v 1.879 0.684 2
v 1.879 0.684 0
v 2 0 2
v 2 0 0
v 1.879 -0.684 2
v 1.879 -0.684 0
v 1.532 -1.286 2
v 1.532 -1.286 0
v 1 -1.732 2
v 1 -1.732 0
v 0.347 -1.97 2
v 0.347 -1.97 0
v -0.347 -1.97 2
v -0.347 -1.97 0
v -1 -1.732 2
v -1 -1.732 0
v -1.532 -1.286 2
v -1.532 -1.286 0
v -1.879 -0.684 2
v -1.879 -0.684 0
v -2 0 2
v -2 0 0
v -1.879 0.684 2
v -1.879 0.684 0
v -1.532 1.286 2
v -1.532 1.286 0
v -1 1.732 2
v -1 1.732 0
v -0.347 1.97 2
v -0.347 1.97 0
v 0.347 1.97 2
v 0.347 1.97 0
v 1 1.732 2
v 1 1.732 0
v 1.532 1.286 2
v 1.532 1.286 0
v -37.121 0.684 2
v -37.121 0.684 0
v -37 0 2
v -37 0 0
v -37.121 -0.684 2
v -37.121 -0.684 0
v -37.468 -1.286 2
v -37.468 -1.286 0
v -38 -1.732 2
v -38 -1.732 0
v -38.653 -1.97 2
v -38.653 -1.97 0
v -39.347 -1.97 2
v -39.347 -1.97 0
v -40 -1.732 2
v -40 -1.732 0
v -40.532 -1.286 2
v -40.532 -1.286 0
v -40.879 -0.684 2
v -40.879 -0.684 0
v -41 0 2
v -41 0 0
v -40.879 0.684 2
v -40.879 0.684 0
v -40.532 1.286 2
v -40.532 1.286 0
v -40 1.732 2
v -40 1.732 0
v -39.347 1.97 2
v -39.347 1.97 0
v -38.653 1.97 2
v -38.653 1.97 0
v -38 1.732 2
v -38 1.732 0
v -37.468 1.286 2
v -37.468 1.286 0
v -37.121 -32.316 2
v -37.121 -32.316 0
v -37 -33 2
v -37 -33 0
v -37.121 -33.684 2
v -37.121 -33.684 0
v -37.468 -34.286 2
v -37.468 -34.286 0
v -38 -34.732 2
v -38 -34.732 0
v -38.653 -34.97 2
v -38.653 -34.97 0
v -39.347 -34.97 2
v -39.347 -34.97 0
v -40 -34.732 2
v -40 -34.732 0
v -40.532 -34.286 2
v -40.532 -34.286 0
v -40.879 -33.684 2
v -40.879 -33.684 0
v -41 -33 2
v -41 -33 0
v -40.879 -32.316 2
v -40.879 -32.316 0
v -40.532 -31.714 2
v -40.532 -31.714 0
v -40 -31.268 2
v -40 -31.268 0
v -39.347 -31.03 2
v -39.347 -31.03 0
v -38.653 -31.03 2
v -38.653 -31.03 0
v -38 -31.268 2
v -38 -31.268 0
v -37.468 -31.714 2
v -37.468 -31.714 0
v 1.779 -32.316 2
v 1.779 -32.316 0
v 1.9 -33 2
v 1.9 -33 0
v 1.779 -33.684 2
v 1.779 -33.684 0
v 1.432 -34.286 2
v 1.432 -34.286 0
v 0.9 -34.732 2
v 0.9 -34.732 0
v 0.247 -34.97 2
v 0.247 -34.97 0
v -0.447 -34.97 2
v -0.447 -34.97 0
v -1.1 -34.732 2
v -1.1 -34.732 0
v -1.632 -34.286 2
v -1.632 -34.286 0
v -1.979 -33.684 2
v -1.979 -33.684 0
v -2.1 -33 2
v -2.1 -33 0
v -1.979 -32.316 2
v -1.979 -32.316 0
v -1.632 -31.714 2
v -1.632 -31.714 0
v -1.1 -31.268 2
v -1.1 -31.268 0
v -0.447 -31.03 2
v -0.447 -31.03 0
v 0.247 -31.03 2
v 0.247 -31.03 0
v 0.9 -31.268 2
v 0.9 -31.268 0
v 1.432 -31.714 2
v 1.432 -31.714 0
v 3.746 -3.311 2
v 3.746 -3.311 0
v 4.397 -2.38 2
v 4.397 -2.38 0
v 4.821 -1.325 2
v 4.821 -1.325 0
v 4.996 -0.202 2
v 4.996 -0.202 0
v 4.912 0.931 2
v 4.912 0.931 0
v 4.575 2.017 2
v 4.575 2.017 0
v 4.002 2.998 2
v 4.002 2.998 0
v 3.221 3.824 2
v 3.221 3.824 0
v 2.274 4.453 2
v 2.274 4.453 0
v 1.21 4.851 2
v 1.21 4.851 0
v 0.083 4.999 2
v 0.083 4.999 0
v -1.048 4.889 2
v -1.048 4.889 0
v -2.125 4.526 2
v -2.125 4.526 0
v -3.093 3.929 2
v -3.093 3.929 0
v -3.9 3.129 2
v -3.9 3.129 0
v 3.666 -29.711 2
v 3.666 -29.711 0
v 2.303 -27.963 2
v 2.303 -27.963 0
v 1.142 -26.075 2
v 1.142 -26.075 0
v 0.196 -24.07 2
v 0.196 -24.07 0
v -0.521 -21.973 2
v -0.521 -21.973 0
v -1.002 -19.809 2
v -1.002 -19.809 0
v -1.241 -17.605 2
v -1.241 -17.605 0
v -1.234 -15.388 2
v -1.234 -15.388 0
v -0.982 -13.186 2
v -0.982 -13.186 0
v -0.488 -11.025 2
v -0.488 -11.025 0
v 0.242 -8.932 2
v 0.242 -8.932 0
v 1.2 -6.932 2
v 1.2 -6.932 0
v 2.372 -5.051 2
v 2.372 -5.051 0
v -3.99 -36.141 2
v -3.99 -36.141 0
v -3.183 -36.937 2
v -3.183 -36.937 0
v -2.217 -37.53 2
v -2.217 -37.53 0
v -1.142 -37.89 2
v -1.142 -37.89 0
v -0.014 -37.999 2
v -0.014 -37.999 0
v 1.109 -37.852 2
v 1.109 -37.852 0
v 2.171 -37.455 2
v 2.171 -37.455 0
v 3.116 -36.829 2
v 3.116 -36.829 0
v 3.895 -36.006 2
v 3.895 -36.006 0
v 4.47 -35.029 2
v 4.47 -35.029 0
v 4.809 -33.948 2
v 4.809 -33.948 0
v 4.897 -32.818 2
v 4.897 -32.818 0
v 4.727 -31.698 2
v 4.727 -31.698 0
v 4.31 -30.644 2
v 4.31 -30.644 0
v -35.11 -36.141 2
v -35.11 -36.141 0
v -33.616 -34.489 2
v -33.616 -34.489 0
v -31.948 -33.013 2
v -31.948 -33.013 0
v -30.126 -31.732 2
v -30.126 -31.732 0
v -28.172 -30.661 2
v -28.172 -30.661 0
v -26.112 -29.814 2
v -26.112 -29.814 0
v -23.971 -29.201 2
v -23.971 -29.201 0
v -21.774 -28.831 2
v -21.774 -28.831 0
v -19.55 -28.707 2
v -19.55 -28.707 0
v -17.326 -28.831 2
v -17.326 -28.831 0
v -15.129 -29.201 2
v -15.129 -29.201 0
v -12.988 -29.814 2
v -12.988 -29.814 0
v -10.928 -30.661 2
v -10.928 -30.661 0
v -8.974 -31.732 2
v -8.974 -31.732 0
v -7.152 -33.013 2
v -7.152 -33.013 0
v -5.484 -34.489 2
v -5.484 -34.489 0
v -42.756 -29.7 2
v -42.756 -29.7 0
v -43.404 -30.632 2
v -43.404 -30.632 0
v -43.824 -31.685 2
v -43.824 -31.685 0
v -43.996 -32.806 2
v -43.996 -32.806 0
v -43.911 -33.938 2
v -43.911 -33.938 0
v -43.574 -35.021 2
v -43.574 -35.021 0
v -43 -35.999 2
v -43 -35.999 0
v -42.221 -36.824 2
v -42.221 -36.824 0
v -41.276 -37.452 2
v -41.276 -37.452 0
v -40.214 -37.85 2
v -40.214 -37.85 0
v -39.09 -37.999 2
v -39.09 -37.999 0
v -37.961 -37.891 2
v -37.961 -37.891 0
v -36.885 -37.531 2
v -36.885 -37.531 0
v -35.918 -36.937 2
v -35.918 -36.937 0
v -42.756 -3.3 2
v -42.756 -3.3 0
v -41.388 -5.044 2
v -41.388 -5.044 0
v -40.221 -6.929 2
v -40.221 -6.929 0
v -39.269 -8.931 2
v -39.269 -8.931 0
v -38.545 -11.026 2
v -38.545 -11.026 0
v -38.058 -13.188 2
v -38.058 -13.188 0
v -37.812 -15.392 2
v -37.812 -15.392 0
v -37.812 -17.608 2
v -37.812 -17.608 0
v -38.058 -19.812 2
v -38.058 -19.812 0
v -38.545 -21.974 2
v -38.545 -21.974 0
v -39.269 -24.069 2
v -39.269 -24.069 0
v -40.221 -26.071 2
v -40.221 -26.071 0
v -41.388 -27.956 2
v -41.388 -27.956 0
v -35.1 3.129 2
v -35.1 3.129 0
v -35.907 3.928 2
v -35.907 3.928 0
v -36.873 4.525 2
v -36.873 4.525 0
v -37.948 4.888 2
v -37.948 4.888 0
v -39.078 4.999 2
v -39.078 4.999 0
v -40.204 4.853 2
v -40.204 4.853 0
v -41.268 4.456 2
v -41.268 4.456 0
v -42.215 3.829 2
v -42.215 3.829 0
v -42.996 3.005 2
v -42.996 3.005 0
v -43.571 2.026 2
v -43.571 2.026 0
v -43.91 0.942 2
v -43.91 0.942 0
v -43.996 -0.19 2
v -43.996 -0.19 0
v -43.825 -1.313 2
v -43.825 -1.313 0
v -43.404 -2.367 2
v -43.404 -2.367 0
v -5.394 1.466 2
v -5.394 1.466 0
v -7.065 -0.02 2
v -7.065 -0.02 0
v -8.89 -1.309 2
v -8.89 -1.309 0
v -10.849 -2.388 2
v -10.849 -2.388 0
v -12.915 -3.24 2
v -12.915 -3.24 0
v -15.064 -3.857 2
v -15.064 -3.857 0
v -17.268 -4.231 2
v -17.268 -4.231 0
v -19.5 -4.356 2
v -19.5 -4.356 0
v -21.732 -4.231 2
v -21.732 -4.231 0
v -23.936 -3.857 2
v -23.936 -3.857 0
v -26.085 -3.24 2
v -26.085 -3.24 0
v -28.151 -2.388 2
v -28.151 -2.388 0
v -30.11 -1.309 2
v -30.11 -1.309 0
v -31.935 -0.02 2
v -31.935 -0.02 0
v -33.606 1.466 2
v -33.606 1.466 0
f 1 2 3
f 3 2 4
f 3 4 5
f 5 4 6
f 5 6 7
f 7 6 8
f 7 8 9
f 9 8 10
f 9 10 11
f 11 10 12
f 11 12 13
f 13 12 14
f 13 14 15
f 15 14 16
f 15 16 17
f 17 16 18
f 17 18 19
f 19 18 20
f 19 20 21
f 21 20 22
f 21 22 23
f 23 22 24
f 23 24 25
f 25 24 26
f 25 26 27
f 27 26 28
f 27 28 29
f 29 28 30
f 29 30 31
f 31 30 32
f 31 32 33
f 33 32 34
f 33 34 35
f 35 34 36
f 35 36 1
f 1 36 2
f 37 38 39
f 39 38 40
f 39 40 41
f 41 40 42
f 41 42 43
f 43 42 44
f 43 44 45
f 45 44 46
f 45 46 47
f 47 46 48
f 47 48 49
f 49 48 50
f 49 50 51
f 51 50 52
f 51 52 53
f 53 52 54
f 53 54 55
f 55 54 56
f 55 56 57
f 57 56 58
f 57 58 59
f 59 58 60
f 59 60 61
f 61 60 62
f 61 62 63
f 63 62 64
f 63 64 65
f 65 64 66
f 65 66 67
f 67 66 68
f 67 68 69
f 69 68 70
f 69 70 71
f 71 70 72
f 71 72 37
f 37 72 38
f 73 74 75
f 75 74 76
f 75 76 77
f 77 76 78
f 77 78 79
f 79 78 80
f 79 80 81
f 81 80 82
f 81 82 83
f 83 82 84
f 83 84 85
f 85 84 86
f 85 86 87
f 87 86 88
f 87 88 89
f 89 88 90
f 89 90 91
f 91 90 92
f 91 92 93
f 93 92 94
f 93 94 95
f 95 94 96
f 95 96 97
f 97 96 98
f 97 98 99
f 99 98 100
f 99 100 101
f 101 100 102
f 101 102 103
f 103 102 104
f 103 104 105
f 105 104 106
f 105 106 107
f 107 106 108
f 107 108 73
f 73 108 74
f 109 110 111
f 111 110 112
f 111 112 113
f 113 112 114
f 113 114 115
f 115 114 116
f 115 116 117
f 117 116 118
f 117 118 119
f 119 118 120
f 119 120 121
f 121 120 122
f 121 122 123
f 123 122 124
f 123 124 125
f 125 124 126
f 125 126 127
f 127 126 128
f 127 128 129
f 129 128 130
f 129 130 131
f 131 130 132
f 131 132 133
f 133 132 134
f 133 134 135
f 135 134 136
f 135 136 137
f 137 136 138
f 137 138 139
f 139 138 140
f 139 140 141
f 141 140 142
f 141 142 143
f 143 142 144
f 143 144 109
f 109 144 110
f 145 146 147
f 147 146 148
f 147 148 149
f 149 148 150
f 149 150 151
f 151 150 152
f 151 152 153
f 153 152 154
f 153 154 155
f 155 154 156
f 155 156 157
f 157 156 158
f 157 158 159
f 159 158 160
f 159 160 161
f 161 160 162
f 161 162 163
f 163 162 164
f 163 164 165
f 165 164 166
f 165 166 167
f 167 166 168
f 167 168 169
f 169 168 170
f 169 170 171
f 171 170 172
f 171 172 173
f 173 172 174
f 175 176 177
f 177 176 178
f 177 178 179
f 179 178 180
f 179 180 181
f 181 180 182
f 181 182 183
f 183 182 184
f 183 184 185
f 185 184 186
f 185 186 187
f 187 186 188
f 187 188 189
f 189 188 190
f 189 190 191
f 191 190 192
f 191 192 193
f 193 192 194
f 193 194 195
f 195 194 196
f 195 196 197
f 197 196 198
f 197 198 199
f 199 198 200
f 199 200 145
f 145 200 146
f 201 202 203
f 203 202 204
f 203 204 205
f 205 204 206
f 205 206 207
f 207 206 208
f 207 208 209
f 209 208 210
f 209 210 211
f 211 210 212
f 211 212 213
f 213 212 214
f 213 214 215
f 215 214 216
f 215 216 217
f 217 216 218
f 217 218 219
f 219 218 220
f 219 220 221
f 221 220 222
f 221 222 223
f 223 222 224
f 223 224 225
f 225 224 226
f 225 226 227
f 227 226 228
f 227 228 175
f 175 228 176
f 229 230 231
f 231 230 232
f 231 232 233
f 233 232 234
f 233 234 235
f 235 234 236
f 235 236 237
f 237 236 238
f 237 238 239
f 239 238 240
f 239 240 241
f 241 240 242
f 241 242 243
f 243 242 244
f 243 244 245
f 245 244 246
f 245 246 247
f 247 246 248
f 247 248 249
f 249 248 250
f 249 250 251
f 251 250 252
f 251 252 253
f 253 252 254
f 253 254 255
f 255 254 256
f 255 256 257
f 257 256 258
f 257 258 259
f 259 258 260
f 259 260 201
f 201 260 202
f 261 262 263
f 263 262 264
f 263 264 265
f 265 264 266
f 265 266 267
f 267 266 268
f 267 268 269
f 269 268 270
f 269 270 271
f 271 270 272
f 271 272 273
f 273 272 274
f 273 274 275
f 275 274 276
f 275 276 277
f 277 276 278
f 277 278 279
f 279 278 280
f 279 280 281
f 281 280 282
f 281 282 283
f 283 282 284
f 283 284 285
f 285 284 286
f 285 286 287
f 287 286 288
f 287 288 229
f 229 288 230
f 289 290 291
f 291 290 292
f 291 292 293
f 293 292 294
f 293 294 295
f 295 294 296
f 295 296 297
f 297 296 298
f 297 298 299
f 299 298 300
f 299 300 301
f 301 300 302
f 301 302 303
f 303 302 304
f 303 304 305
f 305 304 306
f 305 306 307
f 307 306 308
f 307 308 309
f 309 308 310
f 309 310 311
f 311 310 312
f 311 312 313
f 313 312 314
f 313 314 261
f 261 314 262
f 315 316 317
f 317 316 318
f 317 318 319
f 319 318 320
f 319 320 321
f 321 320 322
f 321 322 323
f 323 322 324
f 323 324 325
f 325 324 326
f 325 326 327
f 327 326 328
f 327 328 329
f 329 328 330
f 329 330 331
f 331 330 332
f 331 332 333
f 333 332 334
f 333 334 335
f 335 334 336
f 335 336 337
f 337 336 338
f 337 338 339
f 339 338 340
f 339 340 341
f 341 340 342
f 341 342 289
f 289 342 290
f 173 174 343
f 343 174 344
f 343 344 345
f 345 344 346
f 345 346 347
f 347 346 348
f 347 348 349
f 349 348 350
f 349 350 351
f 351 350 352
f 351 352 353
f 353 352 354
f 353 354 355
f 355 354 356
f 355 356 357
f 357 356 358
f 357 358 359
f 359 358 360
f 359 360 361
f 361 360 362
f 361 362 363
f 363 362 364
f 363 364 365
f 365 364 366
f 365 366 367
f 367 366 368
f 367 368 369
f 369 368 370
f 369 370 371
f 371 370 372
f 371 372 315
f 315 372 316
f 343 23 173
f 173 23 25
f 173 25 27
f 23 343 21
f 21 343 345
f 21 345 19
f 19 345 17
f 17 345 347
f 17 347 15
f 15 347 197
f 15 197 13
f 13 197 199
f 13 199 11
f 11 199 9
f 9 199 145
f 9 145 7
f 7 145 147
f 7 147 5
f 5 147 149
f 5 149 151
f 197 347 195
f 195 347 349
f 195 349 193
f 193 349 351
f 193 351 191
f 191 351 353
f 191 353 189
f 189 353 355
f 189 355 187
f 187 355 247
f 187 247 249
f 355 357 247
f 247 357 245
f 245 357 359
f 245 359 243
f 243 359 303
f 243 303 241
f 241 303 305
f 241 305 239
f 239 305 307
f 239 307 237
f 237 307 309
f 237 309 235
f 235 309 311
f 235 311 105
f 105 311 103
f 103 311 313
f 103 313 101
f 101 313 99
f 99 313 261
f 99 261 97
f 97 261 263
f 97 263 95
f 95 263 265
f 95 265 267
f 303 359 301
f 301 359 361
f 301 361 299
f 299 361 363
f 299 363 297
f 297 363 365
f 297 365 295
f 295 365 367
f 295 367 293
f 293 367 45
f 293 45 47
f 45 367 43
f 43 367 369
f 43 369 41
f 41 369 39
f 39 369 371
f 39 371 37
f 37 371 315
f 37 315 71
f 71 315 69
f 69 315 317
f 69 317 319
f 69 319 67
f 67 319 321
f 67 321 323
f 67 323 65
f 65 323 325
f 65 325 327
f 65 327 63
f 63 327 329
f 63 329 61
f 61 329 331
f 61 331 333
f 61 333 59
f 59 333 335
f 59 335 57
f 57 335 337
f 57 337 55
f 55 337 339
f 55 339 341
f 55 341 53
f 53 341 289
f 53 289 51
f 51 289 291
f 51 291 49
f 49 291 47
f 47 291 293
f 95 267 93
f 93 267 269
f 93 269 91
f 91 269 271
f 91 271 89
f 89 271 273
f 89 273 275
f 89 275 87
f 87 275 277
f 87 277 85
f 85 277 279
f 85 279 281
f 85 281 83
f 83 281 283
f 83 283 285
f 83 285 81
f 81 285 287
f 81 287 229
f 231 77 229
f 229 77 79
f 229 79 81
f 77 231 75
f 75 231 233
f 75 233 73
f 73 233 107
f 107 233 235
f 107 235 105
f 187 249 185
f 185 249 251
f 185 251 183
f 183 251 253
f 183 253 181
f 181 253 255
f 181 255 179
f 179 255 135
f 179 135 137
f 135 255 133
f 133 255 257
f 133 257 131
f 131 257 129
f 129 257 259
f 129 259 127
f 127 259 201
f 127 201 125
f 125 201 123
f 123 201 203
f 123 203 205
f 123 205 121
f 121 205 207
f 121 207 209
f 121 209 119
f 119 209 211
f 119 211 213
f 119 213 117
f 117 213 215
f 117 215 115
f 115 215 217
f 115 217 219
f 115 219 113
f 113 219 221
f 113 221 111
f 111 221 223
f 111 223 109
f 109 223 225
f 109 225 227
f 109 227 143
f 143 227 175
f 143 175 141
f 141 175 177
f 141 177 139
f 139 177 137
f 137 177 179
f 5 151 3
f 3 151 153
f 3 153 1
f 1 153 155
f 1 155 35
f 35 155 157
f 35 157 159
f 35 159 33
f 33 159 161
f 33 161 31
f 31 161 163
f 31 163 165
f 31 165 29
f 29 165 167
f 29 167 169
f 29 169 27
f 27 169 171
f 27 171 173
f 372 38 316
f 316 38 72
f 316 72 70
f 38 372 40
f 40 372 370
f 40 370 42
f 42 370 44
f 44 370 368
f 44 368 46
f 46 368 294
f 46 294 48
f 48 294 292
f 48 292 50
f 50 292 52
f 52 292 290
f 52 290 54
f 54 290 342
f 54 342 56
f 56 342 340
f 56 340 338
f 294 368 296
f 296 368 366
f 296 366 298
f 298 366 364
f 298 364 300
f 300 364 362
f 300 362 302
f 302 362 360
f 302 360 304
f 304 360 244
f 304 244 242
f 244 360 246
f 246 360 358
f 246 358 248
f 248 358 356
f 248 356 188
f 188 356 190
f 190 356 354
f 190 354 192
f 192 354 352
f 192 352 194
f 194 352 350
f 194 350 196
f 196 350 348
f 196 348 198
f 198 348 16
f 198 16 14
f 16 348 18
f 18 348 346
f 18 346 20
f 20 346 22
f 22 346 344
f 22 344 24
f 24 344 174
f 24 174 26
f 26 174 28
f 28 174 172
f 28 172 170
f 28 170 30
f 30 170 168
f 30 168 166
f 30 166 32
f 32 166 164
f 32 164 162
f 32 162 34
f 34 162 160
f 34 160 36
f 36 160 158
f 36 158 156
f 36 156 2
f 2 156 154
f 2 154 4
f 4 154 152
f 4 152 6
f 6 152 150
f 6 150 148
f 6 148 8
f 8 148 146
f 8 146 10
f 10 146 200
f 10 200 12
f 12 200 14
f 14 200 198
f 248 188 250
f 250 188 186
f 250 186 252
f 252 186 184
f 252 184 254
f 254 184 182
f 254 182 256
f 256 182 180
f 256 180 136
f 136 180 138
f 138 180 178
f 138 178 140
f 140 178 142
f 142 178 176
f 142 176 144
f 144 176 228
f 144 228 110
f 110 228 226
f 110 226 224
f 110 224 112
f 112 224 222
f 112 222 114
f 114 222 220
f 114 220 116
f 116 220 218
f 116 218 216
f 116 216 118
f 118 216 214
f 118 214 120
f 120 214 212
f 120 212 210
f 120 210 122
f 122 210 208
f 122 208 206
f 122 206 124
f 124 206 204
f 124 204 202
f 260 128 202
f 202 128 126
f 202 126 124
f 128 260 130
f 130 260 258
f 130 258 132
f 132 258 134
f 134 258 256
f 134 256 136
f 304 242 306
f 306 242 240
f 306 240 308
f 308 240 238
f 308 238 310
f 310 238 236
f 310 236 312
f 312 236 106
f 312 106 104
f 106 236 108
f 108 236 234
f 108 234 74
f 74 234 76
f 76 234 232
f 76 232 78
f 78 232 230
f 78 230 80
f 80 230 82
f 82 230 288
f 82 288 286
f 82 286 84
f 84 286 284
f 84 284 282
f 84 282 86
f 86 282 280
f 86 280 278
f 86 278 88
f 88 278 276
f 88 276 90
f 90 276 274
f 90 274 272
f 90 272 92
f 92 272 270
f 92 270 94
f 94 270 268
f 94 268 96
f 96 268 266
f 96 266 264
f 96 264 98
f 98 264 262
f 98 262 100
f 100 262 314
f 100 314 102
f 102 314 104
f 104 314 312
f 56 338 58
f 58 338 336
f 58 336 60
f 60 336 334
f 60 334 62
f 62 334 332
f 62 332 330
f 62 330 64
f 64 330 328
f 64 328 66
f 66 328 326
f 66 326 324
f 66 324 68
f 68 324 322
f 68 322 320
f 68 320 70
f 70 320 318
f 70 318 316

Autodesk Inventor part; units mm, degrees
ref_plane "YZ Plane" through (0, 0, 0) normal (1, 0, 0) x (0, 1, 0)
ref_plane "XZ Plane" through (0, 0, 0) normal (0, 1, 0) x (-1, 0, 0)
ref_plane "XY Plane" through (0, 0, 0) normal (0, 0, 1) x (1, 0, 0)
sketch "Эскиз1" plane through (0, 0, 0) normal (0, 0, 1) x (1, 0, 0)
  circle A0 centre (0, 0) radius 2 projected
  circle A1 centre (-39, 0) radius 2 projected
  arc A2 (-35.1, 3.1289) -> (-42.7563, -3.3) centre (-39, 0) ccw
  arc A3 (-42.7563, -29.7) -> (-35.11, -36.1413) centre (-39, -33) ccw
  arc A4 (3.7463, -3.3114) -> (-3.9, 3.1289) centre (0, 0) ccw
  arc A5 (-3.99, -36.1413) -> (3.6663, -29.7114) centre (-0.1, -33) ccw
  arc A6 (-35.1, 3.1289) -> (-3.9, 3.1289) centre (-19.5, 15.6445) ccw
  arc A7 (3.7463, -3.3114) -> (3.6663, -29.7114) centre (18.7315, -16.5569) ccw
  arc A8 (-42.7563, -29.7) -> (-42.7563, -3.3) centre (-57.7816, -16.5) ccw
  circle A9 centre (-39, -33) radius 2
  circle A10 centre (-0.1, -33) radius 2
  arc A11 (-3.99, -36.1413) -> (-35.11, -36.1413) centre (-19.55, -48.7066) ccw
  point P0 (0, 0)
  dimension "d1" = 5
  dimension "d2" = 20
extrude "Выдавливание1" add sketch "Эскиз1" along normal blind 2
properties part number "ts_holder"
